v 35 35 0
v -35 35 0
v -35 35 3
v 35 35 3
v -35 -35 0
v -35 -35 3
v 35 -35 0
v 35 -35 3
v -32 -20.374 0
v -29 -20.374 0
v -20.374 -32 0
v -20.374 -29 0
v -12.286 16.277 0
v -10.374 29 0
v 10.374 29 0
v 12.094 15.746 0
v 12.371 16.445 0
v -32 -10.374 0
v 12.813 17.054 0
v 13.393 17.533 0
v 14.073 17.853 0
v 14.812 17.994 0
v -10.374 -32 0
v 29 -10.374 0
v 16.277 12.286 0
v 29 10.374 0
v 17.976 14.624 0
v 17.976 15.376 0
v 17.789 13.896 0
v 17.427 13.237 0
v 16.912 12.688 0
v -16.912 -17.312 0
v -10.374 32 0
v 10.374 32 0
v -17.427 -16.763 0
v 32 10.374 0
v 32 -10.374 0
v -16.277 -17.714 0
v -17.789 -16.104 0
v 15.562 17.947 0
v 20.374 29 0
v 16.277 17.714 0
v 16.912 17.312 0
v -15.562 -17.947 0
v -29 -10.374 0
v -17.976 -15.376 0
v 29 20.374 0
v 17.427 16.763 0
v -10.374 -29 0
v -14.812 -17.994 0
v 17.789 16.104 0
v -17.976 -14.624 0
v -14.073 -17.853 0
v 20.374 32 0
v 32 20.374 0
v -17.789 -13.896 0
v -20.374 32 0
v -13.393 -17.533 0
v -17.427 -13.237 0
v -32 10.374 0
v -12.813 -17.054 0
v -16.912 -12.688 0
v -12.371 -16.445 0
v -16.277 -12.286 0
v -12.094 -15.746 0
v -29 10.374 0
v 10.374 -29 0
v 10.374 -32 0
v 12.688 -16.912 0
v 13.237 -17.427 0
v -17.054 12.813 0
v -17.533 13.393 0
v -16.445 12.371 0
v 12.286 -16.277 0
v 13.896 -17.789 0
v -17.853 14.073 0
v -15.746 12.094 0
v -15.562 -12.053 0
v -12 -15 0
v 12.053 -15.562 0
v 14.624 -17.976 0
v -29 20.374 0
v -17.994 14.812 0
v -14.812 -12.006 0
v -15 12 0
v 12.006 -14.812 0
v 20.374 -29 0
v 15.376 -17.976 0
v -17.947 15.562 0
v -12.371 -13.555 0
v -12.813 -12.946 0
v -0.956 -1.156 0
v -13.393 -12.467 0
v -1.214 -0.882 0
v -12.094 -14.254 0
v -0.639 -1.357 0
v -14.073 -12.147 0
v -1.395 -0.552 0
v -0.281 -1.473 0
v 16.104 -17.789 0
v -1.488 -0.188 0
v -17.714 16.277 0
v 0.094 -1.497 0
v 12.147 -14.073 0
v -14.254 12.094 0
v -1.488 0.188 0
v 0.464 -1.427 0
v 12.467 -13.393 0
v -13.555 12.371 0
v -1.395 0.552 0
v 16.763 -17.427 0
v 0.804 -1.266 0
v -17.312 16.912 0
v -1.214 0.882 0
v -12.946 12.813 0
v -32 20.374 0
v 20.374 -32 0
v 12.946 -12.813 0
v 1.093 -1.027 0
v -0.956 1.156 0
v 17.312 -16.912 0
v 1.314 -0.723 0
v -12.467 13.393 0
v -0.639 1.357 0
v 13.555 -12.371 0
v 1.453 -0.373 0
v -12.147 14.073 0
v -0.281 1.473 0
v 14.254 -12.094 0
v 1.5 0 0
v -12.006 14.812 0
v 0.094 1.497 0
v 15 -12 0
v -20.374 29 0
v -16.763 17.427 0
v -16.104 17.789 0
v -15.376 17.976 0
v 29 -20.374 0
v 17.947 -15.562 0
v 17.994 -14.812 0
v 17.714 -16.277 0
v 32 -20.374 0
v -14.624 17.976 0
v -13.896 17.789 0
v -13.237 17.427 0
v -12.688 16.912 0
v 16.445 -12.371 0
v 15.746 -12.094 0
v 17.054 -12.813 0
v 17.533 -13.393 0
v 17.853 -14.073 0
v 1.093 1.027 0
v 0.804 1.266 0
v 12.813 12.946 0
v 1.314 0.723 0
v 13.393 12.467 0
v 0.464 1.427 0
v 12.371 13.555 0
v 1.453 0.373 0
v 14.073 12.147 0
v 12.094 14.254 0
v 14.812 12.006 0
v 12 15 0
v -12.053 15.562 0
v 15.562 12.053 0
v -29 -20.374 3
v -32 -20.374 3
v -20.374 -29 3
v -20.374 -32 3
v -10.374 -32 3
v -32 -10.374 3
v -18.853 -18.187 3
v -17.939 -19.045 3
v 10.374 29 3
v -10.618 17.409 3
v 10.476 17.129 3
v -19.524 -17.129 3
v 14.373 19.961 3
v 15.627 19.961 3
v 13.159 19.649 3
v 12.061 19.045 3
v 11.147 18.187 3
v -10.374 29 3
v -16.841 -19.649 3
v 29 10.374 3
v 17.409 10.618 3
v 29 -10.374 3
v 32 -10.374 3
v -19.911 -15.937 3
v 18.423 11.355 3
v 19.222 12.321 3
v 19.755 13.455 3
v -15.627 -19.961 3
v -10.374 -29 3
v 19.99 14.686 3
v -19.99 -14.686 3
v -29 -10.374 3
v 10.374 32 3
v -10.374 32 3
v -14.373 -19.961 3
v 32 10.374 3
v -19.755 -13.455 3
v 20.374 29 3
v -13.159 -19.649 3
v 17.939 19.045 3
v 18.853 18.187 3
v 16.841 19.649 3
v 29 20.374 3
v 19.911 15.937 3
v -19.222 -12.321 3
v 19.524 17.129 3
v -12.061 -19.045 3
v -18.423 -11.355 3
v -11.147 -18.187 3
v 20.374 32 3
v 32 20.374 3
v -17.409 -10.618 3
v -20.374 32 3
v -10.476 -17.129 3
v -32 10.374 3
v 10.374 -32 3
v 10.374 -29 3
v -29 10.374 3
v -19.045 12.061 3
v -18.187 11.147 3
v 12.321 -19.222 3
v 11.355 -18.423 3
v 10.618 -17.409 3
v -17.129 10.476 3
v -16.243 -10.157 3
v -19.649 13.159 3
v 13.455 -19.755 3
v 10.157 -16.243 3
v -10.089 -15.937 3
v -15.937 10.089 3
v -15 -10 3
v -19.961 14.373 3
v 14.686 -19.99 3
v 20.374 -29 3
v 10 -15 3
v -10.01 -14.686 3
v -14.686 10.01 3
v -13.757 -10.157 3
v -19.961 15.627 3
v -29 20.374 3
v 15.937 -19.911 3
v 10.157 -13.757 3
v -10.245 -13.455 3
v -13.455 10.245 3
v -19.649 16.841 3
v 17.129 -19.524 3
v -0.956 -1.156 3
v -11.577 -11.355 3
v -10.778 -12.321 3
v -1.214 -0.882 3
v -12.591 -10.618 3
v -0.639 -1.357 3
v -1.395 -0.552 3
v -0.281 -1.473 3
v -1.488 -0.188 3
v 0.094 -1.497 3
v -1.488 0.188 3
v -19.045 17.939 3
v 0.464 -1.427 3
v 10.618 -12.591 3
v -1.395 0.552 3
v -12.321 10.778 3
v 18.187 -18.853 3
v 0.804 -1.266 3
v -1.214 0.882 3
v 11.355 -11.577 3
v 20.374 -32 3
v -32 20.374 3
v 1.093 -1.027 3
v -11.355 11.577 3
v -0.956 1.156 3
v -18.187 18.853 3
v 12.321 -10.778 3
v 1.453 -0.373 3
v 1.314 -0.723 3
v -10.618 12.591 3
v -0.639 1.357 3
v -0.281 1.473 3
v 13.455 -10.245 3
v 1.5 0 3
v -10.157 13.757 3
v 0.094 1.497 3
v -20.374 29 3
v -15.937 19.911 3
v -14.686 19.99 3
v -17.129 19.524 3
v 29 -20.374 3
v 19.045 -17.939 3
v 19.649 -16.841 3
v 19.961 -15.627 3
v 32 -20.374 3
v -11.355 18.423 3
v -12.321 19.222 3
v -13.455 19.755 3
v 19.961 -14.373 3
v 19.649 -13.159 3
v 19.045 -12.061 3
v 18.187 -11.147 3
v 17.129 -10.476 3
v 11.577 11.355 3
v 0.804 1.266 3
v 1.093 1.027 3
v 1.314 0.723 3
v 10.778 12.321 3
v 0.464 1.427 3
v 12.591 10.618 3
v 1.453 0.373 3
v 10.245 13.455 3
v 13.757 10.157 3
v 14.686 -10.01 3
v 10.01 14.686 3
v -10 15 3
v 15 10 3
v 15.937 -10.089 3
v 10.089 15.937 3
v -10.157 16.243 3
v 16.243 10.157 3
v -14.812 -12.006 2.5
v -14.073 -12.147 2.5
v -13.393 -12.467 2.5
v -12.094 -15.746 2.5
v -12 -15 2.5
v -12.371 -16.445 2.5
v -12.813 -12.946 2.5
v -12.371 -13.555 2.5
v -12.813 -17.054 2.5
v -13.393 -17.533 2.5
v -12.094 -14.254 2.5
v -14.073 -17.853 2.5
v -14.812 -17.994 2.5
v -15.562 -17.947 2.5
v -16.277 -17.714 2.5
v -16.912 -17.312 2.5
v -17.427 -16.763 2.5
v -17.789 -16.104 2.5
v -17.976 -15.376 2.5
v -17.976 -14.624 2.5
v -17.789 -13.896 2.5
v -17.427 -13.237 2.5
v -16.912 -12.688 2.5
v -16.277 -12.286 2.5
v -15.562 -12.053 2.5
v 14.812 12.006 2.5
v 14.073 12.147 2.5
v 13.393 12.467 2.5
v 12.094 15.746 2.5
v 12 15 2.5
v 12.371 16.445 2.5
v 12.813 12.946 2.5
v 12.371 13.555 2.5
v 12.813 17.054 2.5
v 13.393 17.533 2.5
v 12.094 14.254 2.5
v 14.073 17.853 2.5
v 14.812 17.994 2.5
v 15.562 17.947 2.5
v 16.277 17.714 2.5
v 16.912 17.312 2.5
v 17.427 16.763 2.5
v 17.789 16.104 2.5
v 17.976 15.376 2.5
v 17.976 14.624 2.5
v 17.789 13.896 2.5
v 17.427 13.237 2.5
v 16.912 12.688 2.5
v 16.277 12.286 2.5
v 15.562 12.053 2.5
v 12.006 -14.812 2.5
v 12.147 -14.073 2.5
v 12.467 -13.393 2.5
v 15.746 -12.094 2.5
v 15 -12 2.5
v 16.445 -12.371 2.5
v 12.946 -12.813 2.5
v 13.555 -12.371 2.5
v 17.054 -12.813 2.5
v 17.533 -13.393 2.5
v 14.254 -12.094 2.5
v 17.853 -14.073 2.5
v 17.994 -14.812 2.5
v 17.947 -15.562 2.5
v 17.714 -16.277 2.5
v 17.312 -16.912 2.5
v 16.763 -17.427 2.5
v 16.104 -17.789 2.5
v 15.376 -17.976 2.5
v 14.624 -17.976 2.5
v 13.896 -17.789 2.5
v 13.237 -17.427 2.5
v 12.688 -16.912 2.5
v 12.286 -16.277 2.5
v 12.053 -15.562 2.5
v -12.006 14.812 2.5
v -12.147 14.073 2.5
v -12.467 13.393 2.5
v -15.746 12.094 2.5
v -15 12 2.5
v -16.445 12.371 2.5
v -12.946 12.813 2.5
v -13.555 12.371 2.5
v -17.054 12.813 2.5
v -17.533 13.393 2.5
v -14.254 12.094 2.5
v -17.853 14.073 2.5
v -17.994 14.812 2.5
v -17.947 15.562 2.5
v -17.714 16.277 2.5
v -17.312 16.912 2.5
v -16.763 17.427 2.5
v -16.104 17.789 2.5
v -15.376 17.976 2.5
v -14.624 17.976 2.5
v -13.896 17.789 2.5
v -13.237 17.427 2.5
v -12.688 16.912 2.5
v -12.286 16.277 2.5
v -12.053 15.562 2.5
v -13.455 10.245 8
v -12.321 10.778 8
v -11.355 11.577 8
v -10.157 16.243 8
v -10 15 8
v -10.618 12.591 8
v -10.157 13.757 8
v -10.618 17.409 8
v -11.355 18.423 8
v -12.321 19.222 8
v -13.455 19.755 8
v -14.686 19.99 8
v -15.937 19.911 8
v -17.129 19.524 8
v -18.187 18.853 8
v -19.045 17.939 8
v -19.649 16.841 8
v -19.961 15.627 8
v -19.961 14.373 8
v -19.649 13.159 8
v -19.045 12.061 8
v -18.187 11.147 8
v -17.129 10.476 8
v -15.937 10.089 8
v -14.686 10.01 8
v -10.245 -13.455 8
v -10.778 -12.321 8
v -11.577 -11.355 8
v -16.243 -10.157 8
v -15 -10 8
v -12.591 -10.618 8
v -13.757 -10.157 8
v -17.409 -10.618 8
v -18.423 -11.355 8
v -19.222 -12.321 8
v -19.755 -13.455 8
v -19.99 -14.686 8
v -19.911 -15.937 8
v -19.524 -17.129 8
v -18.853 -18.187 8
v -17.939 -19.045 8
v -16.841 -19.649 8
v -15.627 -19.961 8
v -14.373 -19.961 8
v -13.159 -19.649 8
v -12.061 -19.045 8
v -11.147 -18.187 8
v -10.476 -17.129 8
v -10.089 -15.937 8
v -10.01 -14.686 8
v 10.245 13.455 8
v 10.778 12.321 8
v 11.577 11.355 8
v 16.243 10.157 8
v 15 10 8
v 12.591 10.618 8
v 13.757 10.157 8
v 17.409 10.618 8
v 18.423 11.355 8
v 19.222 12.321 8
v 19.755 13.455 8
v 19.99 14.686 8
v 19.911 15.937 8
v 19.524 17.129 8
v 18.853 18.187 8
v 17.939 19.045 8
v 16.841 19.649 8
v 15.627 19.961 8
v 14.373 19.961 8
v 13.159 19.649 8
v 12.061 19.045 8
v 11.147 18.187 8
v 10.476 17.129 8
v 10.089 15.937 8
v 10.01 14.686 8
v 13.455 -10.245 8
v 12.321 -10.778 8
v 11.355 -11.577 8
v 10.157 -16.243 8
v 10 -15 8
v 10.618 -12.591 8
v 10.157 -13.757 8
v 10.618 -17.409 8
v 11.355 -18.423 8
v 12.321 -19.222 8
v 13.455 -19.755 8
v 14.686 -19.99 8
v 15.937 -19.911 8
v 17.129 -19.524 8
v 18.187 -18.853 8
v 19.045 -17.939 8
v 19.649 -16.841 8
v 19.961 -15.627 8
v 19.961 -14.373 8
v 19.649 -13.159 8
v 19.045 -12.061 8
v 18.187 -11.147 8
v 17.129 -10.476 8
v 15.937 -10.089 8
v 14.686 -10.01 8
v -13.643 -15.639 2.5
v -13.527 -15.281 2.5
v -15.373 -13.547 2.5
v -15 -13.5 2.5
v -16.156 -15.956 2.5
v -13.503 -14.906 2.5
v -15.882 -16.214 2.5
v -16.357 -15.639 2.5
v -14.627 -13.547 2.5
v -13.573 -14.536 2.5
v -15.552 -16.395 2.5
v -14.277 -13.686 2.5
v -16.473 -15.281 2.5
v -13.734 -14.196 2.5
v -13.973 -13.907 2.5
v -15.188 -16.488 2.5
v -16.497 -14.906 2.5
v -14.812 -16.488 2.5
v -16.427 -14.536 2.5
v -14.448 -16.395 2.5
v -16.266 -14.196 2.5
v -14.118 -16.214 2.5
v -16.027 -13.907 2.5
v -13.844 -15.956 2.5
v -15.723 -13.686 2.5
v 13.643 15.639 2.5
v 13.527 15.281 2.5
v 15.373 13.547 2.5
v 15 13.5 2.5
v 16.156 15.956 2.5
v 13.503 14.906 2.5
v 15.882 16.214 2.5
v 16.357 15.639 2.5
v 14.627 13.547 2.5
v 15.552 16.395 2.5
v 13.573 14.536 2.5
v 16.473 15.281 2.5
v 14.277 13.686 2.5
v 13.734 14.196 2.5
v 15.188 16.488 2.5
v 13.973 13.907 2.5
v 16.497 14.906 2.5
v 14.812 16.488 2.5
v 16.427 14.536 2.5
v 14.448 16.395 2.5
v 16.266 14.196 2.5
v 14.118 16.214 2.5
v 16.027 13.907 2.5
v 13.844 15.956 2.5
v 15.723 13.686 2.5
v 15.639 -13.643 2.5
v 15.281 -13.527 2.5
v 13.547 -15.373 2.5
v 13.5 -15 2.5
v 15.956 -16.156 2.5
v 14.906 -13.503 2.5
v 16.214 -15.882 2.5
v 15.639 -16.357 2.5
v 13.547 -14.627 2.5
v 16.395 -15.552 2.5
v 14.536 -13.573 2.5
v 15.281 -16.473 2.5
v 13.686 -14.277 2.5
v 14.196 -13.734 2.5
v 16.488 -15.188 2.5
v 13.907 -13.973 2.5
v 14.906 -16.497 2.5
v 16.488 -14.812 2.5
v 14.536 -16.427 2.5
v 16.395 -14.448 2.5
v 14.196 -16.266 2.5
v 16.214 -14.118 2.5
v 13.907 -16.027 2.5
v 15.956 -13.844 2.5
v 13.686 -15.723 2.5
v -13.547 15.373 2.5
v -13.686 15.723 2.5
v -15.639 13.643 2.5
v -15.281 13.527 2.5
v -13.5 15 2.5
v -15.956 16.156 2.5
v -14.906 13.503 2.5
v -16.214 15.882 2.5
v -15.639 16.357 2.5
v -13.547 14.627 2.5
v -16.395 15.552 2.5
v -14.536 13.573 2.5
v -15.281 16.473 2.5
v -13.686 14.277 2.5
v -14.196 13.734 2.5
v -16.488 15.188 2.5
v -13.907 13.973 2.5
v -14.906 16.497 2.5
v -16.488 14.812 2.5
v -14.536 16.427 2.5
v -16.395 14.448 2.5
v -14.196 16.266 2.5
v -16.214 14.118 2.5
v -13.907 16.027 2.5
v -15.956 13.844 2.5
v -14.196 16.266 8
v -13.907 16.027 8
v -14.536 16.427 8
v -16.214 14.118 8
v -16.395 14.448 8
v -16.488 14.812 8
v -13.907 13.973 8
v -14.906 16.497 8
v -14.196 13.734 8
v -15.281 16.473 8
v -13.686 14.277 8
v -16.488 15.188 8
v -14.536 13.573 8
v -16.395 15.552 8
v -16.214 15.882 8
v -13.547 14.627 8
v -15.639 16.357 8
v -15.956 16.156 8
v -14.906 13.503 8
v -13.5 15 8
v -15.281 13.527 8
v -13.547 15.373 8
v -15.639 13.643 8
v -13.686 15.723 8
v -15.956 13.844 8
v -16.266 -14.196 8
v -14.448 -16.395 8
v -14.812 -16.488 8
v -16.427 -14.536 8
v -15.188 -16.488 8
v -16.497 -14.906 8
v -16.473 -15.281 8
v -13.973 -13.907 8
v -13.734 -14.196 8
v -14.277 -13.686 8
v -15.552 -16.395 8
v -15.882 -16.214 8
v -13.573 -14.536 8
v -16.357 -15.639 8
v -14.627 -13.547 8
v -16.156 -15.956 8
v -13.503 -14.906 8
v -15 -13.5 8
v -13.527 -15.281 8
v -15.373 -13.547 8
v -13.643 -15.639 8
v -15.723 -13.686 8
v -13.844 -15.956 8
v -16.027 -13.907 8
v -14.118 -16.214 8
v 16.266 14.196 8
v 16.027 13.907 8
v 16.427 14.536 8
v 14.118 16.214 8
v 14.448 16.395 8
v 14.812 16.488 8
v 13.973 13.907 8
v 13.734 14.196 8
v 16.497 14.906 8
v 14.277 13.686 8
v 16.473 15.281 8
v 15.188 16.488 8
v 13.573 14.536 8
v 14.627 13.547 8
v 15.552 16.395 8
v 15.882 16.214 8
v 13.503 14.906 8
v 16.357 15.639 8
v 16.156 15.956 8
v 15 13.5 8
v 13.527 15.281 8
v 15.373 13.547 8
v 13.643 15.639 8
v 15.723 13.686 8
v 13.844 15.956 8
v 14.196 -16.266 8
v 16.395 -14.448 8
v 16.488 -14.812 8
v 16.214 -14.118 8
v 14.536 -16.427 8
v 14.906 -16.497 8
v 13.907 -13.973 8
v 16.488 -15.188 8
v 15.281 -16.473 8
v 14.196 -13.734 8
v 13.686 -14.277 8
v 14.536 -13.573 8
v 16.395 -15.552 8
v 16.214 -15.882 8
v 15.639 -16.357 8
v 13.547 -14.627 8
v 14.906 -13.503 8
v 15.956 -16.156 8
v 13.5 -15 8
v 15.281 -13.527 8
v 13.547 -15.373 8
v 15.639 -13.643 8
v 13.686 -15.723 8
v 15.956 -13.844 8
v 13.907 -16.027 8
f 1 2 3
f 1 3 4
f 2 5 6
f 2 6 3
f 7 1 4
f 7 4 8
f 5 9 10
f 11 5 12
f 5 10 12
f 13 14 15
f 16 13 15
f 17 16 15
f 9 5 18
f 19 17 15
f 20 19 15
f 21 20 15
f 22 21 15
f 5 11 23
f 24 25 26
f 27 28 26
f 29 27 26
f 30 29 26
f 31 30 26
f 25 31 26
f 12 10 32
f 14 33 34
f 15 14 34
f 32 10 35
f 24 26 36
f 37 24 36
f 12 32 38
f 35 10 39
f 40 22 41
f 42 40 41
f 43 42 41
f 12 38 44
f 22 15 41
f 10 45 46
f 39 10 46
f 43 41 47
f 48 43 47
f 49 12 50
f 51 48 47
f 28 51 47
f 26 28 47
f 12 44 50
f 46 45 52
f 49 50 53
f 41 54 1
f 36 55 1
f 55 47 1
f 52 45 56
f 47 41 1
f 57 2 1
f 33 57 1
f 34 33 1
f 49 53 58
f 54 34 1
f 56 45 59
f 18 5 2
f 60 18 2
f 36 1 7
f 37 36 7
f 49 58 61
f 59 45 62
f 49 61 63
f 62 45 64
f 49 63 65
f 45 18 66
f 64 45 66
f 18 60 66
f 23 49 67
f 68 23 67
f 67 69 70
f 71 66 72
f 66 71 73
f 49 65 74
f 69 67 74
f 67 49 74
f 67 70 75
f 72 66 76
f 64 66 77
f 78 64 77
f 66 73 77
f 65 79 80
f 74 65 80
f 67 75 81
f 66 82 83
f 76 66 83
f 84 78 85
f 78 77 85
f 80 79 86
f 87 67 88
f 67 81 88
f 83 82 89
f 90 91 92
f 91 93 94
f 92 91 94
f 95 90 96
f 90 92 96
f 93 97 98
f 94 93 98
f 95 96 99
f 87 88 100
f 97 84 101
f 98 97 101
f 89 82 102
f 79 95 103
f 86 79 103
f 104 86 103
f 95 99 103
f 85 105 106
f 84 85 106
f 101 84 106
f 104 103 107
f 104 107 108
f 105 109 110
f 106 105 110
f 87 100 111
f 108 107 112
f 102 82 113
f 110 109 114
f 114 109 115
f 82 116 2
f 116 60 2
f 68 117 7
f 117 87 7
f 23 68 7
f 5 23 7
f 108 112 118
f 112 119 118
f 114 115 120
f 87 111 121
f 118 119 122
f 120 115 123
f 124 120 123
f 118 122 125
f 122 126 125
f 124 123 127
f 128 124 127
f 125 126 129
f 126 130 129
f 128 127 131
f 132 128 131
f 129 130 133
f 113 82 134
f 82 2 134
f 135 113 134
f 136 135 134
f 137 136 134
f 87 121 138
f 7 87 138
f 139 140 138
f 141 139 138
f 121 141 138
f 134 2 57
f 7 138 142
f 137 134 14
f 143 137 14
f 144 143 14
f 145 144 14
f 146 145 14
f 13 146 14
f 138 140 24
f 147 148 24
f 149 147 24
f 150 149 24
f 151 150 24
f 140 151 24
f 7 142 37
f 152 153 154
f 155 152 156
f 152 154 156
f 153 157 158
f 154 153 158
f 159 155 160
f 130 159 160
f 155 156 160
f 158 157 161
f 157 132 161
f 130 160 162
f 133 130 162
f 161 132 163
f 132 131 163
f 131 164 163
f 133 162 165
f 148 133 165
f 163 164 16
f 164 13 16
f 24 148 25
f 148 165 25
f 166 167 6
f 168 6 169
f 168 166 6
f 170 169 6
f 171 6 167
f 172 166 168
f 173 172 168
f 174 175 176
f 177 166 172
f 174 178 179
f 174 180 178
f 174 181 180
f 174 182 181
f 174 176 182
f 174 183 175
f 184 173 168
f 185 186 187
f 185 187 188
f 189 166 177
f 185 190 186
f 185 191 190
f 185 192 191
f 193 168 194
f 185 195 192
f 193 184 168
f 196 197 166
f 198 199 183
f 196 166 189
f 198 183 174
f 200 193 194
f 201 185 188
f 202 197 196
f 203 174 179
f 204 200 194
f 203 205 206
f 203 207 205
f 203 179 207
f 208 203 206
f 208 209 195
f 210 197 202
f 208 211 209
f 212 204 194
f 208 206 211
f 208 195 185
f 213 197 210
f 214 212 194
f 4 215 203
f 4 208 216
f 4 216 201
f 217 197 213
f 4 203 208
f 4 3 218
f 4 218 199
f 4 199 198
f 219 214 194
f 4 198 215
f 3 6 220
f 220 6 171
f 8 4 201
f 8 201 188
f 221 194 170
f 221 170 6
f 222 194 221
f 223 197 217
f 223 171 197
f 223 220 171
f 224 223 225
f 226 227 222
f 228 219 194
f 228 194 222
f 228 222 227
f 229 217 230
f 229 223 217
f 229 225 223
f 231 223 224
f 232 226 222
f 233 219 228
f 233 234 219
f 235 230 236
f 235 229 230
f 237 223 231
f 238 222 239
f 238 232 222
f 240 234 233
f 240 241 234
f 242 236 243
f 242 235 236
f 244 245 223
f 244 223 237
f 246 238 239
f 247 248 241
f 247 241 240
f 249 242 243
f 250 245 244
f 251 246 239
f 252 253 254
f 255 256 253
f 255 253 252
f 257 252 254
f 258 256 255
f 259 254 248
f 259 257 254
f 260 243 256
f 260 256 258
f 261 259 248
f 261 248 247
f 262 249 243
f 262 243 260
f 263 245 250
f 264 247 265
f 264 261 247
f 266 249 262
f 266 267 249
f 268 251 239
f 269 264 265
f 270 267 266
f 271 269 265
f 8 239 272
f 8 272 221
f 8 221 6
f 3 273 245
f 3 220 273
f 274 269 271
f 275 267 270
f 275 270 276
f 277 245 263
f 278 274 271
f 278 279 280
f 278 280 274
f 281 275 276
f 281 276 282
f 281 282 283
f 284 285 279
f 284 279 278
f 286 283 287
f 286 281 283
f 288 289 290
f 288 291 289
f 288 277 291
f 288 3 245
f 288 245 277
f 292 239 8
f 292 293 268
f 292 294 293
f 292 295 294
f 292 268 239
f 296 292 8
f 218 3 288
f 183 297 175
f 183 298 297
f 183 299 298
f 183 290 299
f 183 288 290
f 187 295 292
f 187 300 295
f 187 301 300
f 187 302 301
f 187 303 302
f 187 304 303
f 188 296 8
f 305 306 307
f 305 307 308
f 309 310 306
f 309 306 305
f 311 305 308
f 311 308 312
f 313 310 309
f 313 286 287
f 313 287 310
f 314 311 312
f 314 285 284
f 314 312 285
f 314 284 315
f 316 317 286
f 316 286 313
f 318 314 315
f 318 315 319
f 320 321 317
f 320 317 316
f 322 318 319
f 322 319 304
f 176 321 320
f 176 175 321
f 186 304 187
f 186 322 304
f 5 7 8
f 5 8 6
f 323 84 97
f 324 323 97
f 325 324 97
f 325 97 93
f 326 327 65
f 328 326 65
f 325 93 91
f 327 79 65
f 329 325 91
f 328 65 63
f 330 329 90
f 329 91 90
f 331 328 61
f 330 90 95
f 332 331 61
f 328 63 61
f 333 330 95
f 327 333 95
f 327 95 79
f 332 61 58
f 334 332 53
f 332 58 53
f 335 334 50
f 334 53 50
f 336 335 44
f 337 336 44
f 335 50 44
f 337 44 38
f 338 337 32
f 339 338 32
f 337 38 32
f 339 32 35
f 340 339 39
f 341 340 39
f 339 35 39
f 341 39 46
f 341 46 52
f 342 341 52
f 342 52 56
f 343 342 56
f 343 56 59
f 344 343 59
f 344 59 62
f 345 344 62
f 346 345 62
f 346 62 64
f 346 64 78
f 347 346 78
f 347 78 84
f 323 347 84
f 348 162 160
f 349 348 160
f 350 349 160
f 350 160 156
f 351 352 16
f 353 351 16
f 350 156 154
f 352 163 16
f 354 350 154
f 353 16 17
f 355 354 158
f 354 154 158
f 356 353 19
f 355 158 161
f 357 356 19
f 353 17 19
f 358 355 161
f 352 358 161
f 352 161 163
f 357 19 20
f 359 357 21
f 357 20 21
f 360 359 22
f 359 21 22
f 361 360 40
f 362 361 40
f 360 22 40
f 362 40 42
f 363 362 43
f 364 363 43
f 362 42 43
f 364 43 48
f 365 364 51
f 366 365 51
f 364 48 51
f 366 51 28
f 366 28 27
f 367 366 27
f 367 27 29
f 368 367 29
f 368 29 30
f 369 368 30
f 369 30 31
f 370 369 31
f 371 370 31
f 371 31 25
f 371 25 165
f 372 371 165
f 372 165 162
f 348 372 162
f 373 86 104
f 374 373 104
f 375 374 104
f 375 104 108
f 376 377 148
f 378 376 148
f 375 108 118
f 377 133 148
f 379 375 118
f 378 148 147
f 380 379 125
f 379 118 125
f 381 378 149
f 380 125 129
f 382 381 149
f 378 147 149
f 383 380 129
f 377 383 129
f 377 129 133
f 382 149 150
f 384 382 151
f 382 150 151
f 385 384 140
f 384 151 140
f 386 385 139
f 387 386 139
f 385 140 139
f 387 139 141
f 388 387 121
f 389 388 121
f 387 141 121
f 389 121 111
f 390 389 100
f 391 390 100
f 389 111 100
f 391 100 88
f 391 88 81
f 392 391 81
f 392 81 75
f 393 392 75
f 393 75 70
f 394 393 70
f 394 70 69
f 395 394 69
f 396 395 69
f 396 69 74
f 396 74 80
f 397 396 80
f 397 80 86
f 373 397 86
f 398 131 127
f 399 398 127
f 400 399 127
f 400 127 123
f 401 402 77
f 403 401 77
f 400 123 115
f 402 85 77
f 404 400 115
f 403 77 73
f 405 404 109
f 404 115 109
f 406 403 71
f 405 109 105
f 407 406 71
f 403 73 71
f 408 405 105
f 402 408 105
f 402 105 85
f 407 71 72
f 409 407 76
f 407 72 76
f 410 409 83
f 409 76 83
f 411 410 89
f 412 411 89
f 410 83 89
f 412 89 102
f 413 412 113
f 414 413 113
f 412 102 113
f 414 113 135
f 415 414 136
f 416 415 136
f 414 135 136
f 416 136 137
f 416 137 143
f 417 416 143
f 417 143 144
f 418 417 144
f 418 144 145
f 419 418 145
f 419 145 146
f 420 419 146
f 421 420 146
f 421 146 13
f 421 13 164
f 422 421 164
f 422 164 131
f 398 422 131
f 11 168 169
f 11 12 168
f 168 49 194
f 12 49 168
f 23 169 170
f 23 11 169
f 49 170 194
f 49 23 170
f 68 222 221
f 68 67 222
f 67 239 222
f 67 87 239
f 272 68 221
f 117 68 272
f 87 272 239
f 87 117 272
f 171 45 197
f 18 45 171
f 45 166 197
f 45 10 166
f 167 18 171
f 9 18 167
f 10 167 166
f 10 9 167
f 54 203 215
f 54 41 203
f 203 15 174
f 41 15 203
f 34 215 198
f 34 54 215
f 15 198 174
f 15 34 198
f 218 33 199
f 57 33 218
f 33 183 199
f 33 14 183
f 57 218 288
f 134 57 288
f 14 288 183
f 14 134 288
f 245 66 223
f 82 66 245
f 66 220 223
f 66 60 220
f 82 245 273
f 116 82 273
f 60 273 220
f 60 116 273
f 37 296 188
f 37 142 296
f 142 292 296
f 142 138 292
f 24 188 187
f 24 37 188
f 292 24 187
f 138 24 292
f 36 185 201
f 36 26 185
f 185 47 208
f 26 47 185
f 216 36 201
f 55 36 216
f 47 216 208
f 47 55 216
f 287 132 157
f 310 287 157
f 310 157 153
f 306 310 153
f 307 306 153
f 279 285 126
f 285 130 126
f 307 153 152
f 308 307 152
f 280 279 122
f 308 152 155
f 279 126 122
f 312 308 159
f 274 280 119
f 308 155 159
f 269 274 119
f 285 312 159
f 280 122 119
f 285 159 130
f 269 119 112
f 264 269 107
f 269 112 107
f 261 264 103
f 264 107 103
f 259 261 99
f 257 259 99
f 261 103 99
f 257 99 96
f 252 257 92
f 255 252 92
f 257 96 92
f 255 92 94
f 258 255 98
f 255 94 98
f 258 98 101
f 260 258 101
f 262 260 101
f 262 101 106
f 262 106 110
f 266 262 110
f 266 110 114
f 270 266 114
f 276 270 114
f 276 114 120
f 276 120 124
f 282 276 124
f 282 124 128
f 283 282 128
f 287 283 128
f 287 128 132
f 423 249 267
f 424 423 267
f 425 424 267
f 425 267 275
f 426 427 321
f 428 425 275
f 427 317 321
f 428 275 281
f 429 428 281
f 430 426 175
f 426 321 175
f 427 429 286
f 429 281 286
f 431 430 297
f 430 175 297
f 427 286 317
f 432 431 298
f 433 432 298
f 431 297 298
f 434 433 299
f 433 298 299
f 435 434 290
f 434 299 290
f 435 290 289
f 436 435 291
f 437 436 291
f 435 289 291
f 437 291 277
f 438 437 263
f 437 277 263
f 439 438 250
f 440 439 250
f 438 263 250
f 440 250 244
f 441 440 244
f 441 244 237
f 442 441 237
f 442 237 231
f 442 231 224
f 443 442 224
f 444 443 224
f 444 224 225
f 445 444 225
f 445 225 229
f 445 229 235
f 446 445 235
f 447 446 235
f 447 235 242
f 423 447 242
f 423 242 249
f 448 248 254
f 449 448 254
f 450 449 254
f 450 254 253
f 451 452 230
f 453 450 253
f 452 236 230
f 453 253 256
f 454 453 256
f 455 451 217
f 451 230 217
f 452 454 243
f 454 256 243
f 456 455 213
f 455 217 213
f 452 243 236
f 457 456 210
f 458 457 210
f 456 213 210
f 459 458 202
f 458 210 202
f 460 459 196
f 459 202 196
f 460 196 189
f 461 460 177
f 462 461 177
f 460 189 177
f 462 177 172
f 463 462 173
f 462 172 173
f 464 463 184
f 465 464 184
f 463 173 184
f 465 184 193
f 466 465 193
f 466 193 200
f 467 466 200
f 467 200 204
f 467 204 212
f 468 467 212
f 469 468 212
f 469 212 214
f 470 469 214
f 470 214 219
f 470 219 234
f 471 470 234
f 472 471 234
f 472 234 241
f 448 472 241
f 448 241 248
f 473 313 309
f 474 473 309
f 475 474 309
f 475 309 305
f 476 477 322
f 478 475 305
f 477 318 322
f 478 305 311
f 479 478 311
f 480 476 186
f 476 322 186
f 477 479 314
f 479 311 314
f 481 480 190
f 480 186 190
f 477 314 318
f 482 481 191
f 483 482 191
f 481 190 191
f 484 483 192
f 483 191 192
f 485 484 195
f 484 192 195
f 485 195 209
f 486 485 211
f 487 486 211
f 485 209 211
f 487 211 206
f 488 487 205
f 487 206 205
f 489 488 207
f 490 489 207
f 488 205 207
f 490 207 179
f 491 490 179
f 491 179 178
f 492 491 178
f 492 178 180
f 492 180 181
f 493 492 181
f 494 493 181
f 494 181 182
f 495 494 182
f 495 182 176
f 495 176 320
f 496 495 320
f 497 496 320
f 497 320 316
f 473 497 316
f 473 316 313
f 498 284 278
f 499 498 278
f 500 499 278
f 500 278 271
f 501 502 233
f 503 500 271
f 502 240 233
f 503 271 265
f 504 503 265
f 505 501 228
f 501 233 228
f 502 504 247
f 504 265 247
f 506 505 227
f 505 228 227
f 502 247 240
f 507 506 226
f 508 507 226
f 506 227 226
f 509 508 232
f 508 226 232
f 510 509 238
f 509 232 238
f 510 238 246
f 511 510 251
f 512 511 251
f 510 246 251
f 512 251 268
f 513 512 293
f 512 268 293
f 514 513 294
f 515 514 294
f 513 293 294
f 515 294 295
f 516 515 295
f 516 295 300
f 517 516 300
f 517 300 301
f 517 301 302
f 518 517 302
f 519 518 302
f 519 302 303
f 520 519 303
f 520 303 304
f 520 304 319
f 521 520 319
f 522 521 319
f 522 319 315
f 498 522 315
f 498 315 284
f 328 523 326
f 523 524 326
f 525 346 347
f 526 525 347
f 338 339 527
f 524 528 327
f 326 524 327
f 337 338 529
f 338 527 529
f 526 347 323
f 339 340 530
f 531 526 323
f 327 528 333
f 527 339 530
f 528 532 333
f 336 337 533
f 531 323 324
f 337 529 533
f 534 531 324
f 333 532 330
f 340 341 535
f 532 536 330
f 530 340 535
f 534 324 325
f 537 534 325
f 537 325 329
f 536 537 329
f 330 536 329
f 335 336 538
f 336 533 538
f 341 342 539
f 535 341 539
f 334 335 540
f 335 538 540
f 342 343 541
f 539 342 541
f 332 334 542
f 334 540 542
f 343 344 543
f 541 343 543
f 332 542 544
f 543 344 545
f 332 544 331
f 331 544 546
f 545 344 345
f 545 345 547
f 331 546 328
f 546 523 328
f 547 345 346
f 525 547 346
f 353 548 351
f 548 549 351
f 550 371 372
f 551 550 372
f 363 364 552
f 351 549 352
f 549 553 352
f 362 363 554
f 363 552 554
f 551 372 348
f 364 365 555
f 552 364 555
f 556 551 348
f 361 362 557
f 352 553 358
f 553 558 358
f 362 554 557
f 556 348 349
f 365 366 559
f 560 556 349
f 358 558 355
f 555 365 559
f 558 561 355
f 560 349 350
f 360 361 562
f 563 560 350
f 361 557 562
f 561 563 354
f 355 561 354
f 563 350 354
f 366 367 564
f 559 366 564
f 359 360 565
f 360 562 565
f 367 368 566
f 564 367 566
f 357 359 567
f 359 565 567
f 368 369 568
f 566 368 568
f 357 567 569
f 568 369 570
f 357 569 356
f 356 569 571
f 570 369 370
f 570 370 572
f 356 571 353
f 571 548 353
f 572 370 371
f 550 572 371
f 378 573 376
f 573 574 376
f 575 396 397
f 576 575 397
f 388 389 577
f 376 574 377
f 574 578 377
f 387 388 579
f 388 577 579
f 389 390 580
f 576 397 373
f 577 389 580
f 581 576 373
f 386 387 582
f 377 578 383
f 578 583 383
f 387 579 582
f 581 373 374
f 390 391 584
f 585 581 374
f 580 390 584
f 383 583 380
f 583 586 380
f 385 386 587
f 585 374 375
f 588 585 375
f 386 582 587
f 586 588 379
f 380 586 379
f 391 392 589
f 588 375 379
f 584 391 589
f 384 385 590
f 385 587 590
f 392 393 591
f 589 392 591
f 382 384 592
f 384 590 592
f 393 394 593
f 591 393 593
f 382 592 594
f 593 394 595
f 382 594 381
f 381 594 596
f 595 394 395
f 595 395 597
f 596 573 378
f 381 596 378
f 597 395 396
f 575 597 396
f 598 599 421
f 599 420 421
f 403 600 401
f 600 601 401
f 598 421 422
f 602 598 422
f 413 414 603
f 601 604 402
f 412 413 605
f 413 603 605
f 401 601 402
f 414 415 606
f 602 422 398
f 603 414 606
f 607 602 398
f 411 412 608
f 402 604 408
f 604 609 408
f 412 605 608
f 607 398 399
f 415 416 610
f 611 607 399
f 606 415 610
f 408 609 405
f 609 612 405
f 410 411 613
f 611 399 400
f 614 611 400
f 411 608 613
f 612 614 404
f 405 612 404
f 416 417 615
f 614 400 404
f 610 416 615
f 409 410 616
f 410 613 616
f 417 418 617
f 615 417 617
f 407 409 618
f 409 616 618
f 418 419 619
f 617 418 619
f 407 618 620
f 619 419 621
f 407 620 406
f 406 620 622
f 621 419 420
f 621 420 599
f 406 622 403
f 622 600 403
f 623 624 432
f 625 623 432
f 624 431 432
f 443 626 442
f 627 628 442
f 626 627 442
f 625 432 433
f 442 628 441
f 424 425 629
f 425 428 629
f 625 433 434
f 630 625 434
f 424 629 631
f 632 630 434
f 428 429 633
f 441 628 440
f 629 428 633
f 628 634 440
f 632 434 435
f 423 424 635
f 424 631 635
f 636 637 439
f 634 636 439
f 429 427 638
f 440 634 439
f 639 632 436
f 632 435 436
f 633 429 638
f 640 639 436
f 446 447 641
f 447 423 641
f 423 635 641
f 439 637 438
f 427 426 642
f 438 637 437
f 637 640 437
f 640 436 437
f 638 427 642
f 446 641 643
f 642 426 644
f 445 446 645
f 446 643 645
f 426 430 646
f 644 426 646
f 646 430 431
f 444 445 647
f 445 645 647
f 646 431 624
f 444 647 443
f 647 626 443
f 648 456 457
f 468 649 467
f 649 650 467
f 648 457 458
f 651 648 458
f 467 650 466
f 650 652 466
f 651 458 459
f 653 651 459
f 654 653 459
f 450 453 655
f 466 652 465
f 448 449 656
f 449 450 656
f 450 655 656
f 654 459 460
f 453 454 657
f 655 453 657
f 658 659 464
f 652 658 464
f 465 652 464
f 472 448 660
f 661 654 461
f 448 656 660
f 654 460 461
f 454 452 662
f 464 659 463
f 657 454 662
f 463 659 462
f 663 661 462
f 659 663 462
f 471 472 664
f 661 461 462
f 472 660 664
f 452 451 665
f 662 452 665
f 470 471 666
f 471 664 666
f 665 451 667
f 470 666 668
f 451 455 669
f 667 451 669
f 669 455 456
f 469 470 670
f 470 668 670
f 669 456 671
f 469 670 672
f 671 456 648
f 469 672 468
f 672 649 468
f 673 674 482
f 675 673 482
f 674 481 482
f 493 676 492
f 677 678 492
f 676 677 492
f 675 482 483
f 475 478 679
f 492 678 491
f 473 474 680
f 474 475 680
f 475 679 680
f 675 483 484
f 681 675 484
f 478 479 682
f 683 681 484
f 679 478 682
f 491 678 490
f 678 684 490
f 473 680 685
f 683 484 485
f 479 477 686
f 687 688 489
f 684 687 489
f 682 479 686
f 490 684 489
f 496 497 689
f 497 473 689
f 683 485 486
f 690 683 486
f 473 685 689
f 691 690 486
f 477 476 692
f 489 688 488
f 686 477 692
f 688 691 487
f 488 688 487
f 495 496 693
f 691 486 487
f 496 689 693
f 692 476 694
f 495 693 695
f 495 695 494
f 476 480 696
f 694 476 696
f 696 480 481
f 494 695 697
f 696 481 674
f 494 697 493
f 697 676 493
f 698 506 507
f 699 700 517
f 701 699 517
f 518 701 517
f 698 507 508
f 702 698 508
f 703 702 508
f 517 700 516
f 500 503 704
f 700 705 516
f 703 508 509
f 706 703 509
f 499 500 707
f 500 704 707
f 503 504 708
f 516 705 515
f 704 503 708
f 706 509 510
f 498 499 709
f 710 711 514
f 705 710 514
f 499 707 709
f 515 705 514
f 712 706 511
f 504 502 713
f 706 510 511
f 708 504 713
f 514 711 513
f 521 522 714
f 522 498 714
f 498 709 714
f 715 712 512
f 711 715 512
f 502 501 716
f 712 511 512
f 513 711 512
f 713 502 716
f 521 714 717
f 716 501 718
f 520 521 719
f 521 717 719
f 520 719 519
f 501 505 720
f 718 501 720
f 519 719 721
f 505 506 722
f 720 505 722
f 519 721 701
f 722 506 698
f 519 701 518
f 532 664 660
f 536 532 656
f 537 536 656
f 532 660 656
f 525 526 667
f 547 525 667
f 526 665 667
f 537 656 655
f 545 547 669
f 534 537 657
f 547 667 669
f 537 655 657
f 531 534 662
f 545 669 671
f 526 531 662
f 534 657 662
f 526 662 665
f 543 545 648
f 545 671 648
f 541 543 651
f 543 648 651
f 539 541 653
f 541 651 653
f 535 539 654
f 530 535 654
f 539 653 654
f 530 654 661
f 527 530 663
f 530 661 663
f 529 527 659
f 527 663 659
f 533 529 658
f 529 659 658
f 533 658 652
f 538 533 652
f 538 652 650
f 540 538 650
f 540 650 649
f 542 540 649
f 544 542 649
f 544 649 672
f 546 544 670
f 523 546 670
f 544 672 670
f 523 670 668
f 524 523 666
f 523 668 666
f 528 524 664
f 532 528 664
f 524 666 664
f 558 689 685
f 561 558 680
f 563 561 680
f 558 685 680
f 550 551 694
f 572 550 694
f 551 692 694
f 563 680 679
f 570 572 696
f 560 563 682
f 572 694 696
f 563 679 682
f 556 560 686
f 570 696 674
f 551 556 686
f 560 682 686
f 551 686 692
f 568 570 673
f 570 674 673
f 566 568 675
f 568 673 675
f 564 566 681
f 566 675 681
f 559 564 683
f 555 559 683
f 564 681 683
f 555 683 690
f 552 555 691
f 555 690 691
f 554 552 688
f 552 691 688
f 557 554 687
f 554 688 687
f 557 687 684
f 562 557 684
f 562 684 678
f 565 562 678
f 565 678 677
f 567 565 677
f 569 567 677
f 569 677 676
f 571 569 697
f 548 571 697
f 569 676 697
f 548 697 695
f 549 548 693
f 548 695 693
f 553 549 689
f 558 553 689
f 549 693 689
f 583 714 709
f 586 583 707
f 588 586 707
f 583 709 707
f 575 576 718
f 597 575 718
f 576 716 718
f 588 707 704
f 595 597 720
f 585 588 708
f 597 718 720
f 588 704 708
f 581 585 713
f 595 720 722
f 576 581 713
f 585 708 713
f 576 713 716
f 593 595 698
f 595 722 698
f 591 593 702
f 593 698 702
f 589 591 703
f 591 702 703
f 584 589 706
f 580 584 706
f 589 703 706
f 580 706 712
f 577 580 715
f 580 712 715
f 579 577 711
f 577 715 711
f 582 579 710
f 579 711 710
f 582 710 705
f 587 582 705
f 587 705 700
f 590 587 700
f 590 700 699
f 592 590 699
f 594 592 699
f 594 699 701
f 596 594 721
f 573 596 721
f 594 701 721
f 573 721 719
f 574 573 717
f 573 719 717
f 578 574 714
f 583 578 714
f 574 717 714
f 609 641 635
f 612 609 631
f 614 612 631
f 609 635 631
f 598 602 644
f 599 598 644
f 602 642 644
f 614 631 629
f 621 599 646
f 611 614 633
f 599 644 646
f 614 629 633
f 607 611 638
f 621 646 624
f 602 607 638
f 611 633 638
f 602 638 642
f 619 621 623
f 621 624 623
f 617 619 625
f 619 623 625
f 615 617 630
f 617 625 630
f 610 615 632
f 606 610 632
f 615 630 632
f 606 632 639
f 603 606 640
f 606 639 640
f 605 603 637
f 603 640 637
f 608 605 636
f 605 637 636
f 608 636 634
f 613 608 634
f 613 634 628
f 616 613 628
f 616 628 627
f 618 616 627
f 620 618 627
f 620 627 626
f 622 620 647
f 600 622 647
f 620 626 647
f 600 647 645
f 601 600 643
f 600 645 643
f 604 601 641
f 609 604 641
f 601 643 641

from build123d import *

# Parameters (mm, degrees)
SKETCH_W                 = 70
SKETCH_H                 = 70
EXTRUDE_DEPTH            = 3
SKETCH001_R              = 5
PAD_DEPTH                = 5
POLARPATTERN_COUNT       = 4
SKETCH002_R              = 1.5
POCKET_DEPTH             = 206.636344
POLARPATTERN001_COUNT    = 4
SKETCH003_R              = 3
POCKET001_DEPTH          = 2.5
POLARPATTERN002_COUNT    = 4
SKETCH004_W              = 10
SKETCH004_H              = 3
POCKET002_DEPTH          = 5
POLARPATTERN002002_COUNT = 4
SKETCH005_R              = 1.5
POCKET003_DEPTH          = 8.001


with BuildPart() as part:
    # Sketch → Extrude (new body)
    with BuildSketch(Plane.XY):
        Rectangle(SKETCH_W, SKETCH_H)
    extrude(amount=EXTRUDE_DEPTH)

    # Sketch001 → Pad (new body)
    with BuildSketch(Plane.XY.offset(3)):
        with Locations((-15, 15)):
            Circle(SKETCH001_R)
    pad = extrude(amount=PAD_DEPTH)

    # PolarPattern: Pad ×4 about axis
    polarpattern_axis = Axis((0, 0, 3), (0, 0, 1))
    for i in range(1, POLARPATTERN_COUNT):
        add(pad.rotate(polarpattern_axis, i * 360 / POLARPATTERN_COUNT))

    # Sketch002 → Pocket (cut, through all)
    with BuildSketch(Plane.XY.offset(8)):
        with Locations((-15, 15)):
            Circle(SKETCH002_R)
    pocket = extrude(amount=-POCKET_DEPTH, mode=Mode.SUBTRACT)

    # PolarPattern001: Pocket ×4 about axis
    polarpattern001_axis = Axis((0, 0, 8), (0, 0, 1))
    for i in range(1, POLARPATTERN001_COUNT):
        add(pocket.rotate(polarpattern001_axis, i * 360 / POLARPATTERN001_COUNT), mode=Mode.SUBTRACT)

    # Sketch003 → Pocket001 (cut)
    with BuildSketch(Plane(origin=(0, 0, 0), x_dir=(1, 0, 0), z_dir=(0, 0, -1))):
        with Locations((-15, 15)):
            Circle(SKETCH003_R)
    pocket001 = extrude(amount=-POCKET001_DEPTH, mode=Mode.SUBTRACT)

    # PolarPattern002: Pocket001 ×4 about axis
    polarpattern002_axis = Axis((0, 0, 0), (0, 0, -1))
    for i in range(1, POLARPATTERN002_COUNT):
        add(pocket001.rotate(polarpattern002_axis, i * 360 / POLARPATTERN002_COUNT), mode=Mode.SUBTRACT)

    # Sketch004 → Pocket002 (cut)
    with BuildSketch(Plane(origin=(0, 0, 0), x_dir=(1, 0, 0), z_dir=(0, 0, -1))):
        with Locations((15.374485, 30.5)):
            Rectangle(SKETCH004_W, SKETCH004_H)
        with Locations((-15.374485, 30.5)):
            Rectangle(SKETCH004_W, SKETCH004_H)
    pocket002 = extrude(amount=-POCKET002_DEPTH, mode=Mode.SUBTRACT)

    # PolarPattern002002: Pocket002 ×4 about axis
    polarpattern002002_axis = Axis((0, 0, 0), (0, 0, -1))
    for i in range(1, POLARPATTERN002002_COUNT):
        add(pocket002.rotate(polarpattern002002_axis, i * 360 / POLARPATTERN002002_COUNT), mode=Mode.SUBTRACT)

    # Sketch005 → Pocket003 (cut, through all)
    with BuildSketch(Plane(origin=(0, 0, 0), x_dir=(1, 0, 0), z_dir=(0, 0, -1))):
        Circle(SKETCH005_R)
    extrude(amount=-POCKET003_DEPTH, mode=Mode.SUBTRACT)


solid = part.part
